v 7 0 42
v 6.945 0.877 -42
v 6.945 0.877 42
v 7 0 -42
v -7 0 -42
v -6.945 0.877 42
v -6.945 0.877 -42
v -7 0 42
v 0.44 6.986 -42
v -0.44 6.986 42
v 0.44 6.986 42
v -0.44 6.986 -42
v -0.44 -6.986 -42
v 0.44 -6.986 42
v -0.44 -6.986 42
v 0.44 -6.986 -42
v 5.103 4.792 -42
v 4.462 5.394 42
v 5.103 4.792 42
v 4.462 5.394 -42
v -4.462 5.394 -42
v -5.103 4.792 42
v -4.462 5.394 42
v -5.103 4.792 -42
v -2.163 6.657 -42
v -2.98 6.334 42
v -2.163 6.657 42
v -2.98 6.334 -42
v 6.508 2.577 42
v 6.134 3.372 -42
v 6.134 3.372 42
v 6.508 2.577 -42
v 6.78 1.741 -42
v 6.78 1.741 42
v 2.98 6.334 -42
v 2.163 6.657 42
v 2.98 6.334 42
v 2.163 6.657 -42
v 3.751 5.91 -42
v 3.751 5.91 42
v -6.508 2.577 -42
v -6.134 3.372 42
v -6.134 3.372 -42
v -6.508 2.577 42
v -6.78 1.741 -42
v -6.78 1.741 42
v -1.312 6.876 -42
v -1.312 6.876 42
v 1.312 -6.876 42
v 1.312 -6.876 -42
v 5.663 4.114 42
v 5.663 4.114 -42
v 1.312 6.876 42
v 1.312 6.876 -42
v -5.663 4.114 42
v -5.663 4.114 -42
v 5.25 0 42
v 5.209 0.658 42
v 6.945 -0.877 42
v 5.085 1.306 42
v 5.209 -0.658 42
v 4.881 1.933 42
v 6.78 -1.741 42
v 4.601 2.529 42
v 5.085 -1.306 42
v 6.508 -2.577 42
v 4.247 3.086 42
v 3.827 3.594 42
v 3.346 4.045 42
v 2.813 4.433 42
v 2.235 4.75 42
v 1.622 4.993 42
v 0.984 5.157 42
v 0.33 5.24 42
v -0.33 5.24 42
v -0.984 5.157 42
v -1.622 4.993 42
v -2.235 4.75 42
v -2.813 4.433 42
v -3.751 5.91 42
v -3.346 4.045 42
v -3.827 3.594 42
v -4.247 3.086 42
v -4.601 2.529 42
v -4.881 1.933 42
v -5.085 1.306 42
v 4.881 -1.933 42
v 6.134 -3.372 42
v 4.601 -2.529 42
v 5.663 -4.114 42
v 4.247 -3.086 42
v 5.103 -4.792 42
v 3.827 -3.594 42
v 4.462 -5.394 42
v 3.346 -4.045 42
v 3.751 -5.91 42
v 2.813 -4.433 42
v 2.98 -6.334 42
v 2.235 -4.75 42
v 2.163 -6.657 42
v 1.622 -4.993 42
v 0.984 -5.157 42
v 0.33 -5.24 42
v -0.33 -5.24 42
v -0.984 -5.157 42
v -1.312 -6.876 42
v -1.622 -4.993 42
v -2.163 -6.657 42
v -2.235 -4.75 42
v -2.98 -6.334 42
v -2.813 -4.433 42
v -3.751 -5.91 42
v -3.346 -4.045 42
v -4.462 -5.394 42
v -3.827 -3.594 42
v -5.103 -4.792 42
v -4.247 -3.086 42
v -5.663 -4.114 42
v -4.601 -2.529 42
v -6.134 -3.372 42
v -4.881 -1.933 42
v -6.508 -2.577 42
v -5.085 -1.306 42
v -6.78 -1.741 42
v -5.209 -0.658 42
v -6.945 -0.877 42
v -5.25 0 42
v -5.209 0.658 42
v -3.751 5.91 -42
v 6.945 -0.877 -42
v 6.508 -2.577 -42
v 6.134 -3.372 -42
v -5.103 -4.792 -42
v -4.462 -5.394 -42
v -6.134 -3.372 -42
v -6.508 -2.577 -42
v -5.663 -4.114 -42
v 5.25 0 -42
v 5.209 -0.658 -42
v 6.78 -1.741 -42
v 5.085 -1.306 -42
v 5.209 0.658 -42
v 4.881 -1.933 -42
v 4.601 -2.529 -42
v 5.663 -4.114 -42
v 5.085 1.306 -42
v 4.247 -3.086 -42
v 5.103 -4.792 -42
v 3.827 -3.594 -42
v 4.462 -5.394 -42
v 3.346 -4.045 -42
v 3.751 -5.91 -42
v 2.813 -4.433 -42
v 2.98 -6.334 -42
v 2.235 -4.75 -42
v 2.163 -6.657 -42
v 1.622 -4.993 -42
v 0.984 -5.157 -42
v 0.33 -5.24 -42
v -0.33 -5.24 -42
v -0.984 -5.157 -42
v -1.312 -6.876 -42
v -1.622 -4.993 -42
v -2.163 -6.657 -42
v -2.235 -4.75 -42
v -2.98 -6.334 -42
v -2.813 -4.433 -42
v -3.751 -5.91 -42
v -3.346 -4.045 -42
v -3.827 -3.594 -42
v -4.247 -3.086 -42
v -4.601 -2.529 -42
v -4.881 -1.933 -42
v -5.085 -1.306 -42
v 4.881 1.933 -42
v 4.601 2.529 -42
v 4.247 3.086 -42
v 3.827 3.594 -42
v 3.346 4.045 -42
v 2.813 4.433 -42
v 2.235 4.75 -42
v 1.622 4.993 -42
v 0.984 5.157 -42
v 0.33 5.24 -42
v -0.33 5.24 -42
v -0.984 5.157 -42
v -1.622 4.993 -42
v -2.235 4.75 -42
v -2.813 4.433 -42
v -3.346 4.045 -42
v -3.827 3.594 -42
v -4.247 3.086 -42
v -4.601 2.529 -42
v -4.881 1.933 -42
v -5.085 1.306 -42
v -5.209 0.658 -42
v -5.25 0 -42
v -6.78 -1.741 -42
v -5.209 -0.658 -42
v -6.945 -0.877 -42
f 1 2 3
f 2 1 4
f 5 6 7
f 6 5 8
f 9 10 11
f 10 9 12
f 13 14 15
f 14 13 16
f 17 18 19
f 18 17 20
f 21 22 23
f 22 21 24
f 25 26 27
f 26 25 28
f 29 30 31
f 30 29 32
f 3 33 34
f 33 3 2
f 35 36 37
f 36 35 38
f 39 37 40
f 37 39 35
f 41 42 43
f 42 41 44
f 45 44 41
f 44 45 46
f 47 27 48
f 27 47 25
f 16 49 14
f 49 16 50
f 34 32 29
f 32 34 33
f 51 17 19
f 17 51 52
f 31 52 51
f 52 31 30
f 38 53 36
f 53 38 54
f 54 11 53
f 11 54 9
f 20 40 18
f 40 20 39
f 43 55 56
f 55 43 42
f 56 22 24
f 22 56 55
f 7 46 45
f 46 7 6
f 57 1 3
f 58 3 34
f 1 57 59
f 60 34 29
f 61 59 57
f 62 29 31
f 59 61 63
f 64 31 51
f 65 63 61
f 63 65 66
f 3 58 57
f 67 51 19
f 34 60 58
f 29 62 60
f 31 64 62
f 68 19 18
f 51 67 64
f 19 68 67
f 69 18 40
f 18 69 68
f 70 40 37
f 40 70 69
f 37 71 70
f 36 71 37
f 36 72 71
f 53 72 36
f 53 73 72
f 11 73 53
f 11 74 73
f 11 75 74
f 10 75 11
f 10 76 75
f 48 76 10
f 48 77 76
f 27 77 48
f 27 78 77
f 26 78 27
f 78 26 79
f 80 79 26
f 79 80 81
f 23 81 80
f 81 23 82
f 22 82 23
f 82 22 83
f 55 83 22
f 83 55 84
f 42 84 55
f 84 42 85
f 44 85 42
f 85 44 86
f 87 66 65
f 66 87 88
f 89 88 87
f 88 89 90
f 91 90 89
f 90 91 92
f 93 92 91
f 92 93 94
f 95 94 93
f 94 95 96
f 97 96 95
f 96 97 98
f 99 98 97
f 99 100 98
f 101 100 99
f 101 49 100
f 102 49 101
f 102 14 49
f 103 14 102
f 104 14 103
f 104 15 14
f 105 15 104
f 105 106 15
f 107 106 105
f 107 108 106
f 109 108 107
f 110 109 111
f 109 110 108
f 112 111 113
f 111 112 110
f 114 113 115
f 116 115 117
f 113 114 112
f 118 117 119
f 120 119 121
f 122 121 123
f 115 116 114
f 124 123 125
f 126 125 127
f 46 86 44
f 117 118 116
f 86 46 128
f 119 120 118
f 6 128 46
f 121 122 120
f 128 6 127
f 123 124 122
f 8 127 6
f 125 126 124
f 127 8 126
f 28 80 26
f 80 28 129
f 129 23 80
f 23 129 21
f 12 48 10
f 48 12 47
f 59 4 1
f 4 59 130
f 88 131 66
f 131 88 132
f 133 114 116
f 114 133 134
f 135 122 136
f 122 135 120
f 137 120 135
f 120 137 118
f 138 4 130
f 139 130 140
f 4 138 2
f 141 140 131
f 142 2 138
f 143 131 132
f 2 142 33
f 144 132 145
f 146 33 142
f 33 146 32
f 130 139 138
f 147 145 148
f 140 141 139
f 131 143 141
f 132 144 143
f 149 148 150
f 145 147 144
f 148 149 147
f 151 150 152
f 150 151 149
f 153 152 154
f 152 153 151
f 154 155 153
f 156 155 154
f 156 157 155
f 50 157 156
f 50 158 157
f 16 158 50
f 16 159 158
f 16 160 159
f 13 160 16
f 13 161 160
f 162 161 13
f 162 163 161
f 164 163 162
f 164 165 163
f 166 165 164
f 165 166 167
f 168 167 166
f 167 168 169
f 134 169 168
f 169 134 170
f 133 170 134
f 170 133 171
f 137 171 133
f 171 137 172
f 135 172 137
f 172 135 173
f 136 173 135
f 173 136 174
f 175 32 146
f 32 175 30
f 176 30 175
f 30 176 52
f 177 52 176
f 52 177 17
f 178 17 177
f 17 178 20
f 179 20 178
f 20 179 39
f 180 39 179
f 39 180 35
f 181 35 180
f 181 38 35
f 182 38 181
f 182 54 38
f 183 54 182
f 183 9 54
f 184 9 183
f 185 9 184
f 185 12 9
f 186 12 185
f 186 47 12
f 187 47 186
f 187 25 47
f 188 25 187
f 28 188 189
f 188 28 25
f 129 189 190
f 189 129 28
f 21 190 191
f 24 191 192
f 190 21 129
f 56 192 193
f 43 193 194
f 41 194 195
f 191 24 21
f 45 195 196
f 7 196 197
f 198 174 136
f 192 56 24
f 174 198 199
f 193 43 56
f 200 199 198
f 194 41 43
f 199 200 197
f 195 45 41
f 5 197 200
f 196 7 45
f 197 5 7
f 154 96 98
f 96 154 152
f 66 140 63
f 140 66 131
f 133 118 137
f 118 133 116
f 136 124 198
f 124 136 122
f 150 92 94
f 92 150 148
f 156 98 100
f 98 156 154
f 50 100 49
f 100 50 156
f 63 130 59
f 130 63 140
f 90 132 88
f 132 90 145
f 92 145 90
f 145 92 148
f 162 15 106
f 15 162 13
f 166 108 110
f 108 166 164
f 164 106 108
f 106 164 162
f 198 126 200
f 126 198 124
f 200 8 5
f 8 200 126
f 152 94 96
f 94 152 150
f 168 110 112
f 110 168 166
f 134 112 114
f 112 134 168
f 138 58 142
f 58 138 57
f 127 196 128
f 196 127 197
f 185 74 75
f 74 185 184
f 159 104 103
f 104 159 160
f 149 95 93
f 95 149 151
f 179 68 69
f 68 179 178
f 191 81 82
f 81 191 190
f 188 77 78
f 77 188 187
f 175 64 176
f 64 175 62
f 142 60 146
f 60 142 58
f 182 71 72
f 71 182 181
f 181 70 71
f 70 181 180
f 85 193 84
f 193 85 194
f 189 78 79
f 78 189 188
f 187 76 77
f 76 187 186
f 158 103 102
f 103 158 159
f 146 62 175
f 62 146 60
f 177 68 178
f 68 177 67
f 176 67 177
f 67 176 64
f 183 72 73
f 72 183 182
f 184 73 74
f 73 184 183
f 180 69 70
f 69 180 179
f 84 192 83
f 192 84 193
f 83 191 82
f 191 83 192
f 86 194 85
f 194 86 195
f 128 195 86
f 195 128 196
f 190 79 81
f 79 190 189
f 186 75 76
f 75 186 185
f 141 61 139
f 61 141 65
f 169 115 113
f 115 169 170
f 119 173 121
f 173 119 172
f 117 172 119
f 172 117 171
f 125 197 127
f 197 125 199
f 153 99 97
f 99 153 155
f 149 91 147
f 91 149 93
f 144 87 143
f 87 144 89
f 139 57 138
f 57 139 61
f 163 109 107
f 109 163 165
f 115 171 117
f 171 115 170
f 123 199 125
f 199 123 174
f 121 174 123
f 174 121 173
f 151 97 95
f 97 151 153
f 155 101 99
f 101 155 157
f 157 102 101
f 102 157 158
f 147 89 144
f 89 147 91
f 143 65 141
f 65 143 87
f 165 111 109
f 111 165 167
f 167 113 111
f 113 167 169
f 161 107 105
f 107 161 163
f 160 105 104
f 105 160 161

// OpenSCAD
$fn = 50;


difference() {
	union() {
		translate(v = [0, 0, -42.0000000000]) {
			cylinder(h = 84, r = 7.0000000000);
		}
	}
	union() {
		translate(v = [0, 0, -100.0000000000]) {
			cylinder(h = 200, r = 5.2500000000);
		}
	}
}
